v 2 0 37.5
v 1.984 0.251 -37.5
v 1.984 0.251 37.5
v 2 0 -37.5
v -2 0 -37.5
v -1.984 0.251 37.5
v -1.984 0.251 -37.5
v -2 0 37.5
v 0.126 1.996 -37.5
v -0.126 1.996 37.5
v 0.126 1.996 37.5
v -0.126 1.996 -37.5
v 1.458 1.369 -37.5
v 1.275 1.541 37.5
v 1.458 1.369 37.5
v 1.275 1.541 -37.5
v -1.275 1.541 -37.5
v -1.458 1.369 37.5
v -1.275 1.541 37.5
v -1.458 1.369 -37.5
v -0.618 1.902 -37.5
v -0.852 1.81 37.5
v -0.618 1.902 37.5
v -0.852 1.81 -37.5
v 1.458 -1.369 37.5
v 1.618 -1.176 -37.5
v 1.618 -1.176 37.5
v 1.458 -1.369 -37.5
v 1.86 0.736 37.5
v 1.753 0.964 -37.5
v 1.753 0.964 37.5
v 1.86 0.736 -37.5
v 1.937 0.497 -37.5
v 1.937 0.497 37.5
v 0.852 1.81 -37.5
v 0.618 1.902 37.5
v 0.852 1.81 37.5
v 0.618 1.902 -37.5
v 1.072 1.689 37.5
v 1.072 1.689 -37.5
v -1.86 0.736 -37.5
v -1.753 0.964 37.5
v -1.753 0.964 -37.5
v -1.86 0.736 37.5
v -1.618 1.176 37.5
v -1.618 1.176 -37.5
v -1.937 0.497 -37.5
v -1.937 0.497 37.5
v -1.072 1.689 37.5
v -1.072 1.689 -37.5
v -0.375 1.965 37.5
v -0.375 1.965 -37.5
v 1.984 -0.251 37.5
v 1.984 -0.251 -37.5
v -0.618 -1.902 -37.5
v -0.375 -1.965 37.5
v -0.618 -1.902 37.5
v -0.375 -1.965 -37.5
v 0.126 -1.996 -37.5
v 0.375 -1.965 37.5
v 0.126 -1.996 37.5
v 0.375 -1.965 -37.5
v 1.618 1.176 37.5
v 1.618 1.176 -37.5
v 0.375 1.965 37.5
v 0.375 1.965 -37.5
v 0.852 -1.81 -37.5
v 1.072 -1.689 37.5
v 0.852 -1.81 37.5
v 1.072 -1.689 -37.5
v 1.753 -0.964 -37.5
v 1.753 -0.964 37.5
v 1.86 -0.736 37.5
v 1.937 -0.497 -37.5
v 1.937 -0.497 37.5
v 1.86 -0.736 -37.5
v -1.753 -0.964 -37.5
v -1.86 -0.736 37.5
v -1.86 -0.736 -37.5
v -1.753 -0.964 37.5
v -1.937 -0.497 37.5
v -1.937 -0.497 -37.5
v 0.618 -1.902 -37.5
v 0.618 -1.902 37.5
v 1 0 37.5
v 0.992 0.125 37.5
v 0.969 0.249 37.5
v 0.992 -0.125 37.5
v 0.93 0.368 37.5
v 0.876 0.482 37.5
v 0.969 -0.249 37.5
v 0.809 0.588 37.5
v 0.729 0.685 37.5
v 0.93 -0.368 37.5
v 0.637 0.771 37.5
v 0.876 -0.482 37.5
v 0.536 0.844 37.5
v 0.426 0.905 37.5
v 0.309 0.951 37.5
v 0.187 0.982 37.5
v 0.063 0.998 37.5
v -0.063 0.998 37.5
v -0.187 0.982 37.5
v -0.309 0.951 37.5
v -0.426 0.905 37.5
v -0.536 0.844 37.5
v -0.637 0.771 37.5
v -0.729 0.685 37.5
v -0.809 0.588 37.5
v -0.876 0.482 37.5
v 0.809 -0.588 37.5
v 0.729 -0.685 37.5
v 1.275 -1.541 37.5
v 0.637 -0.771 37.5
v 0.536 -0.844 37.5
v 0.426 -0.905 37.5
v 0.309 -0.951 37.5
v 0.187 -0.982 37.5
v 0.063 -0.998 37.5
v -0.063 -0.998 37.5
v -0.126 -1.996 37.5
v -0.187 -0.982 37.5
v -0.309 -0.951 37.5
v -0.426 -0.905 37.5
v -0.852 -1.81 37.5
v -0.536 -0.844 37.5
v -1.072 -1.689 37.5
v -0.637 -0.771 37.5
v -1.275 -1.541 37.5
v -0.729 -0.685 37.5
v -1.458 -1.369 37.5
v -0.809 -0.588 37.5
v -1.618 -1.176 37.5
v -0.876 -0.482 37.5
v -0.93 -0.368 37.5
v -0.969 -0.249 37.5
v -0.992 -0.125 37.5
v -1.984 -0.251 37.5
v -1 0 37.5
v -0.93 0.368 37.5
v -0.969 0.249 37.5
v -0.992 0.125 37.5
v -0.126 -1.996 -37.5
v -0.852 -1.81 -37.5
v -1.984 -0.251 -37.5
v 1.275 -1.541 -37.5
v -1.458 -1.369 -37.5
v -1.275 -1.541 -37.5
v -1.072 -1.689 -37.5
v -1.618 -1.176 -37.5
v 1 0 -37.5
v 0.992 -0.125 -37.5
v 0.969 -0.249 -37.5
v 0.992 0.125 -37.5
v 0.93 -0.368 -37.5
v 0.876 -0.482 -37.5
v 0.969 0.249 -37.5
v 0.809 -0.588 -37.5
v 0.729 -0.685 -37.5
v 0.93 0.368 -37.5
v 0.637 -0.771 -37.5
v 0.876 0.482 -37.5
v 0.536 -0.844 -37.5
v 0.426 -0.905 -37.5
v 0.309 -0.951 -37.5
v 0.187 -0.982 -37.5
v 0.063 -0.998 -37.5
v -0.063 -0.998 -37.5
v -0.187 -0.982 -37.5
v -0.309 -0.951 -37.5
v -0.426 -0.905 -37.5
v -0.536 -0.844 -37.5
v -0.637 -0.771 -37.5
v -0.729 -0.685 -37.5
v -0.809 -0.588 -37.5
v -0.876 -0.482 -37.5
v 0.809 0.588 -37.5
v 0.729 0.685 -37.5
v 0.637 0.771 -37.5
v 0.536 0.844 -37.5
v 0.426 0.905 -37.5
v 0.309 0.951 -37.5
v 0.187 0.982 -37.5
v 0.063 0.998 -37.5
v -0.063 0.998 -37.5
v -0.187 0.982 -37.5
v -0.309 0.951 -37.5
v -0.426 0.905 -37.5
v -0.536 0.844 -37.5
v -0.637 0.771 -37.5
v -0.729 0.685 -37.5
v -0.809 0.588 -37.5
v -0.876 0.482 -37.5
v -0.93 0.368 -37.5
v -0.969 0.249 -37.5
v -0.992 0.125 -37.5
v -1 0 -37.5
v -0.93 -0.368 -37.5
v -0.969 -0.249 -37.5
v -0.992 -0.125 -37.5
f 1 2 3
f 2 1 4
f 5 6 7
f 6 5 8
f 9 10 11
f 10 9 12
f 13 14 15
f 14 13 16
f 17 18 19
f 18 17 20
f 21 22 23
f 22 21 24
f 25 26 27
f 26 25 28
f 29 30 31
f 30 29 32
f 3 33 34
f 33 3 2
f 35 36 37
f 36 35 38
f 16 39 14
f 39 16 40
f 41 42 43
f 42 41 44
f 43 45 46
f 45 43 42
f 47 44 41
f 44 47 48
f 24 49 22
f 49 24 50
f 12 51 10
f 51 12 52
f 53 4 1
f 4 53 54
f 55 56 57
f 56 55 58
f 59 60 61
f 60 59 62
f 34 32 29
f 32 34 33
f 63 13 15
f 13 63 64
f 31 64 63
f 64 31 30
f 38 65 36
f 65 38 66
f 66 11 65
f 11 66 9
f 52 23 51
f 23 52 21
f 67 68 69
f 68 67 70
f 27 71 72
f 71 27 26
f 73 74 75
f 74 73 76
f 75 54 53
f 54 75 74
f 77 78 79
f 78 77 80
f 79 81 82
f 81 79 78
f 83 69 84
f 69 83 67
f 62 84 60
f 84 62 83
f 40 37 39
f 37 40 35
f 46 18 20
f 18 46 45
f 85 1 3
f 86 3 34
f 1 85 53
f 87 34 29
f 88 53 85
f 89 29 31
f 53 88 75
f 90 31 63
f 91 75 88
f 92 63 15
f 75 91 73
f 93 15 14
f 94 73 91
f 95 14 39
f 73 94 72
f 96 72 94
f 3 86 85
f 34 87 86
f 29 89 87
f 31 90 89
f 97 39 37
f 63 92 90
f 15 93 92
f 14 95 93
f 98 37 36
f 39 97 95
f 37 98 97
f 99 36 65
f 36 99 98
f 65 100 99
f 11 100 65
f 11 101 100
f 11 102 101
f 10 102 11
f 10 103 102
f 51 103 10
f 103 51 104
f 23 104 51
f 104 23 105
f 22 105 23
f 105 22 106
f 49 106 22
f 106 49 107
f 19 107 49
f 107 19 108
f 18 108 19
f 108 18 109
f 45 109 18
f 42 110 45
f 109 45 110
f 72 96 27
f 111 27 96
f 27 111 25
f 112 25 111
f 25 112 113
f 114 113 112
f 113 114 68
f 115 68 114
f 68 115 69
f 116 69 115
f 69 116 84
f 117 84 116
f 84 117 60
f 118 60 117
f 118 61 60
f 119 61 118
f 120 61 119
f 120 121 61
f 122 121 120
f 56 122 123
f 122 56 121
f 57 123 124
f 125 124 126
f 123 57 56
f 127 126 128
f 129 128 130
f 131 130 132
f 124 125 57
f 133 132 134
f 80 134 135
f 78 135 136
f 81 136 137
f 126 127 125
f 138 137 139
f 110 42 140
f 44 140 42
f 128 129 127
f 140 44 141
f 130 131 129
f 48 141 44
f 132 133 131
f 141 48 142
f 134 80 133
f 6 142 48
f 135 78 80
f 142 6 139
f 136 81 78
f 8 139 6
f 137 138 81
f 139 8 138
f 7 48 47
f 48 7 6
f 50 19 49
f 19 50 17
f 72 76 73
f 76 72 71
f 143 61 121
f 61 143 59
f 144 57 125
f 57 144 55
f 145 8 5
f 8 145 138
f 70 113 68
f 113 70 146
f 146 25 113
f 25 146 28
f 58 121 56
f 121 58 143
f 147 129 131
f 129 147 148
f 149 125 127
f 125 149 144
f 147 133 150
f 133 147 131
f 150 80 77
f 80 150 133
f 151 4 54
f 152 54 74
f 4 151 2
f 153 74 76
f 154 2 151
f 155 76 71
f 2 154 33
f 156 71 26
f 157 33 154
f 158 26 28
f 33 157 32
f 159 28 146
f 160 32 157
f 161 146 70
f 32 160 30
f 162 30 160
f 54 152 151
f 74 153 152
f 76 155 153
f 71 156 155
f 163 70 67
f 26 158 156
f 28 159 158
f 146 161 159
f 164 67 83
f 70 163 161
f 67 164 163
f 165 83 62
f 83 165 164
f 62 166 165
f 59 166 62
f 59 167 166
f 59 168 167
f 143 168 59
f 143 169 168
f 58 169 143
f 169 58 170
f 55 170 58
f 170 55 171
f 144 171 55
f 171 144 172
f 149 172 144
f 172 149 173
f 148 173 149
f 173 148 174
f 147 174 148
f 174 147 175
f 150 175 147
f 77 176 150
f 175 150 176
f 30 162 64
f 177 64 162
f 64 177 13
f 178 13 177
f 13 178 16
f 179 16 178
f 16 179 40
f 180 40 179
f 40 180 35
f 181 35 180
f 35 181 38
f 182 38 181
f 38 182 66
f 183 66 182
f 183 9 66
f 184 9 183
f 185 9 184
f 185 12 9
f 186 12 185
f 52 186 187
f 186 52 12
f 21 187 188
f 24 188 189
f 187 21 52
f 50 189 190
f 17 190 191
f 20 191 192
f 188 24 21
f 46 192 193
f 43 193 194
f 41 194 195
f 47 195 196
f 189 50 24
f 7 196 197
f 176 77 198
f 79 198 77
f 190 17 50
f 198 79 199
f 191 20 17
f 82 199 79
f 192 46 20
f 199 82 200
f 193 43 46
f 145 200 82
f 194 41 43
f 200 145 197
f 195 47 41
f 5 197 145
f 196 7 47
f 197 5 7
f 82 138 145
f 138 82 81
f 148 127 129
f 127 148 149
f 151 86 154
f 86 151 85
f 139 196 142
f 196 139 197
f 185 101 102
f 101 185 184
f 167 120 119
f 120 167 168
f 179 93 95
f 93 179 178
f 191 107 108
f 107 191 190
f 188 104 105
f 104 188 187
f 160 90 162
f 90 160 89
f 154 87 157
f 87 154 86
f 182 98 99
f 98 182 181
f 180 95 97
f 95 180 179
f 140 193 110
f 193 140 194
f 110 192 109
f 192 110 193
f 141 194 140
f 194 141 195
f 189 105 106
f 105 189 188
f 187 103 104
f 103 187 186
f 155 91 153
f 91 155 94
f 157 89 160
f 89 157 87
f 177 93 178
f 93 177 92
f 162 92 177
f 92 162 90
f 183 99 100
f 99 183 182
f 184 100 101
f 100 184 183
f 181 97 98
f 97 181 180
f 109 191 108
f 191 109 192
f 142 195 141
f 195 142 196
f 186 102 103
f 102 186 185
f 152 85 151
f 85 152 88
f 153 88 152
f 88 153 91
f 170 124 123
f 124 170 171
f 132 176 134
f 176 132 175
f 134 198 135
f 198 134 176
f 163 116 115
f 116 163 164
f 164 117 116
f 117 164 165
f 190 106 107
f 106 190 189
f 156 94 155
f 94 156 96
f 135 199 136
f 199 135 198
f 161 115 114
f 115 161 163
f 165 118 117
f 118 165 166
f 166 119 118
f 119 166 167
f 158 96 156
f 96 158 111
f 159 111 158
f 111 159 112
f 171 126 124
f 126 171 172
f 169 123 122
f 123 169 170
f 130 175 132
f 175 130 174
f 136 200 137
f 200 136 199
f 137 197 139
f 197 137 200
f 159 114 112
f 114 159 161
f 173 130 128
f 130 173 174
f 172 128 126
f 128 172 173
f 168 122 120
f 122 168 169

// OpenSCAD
$fn = 50;


difference() {
	union() {
		translate(v = [0, 0, -37.5000000000]) {
			cylinder(h = 75, r = 2.0000000000);
		}
	}
	union() {
		translate(v = [0, 0, -100.0000000000]) {
			cylinder(h = 200, r = 1.0000000000);
		}
	}
}
